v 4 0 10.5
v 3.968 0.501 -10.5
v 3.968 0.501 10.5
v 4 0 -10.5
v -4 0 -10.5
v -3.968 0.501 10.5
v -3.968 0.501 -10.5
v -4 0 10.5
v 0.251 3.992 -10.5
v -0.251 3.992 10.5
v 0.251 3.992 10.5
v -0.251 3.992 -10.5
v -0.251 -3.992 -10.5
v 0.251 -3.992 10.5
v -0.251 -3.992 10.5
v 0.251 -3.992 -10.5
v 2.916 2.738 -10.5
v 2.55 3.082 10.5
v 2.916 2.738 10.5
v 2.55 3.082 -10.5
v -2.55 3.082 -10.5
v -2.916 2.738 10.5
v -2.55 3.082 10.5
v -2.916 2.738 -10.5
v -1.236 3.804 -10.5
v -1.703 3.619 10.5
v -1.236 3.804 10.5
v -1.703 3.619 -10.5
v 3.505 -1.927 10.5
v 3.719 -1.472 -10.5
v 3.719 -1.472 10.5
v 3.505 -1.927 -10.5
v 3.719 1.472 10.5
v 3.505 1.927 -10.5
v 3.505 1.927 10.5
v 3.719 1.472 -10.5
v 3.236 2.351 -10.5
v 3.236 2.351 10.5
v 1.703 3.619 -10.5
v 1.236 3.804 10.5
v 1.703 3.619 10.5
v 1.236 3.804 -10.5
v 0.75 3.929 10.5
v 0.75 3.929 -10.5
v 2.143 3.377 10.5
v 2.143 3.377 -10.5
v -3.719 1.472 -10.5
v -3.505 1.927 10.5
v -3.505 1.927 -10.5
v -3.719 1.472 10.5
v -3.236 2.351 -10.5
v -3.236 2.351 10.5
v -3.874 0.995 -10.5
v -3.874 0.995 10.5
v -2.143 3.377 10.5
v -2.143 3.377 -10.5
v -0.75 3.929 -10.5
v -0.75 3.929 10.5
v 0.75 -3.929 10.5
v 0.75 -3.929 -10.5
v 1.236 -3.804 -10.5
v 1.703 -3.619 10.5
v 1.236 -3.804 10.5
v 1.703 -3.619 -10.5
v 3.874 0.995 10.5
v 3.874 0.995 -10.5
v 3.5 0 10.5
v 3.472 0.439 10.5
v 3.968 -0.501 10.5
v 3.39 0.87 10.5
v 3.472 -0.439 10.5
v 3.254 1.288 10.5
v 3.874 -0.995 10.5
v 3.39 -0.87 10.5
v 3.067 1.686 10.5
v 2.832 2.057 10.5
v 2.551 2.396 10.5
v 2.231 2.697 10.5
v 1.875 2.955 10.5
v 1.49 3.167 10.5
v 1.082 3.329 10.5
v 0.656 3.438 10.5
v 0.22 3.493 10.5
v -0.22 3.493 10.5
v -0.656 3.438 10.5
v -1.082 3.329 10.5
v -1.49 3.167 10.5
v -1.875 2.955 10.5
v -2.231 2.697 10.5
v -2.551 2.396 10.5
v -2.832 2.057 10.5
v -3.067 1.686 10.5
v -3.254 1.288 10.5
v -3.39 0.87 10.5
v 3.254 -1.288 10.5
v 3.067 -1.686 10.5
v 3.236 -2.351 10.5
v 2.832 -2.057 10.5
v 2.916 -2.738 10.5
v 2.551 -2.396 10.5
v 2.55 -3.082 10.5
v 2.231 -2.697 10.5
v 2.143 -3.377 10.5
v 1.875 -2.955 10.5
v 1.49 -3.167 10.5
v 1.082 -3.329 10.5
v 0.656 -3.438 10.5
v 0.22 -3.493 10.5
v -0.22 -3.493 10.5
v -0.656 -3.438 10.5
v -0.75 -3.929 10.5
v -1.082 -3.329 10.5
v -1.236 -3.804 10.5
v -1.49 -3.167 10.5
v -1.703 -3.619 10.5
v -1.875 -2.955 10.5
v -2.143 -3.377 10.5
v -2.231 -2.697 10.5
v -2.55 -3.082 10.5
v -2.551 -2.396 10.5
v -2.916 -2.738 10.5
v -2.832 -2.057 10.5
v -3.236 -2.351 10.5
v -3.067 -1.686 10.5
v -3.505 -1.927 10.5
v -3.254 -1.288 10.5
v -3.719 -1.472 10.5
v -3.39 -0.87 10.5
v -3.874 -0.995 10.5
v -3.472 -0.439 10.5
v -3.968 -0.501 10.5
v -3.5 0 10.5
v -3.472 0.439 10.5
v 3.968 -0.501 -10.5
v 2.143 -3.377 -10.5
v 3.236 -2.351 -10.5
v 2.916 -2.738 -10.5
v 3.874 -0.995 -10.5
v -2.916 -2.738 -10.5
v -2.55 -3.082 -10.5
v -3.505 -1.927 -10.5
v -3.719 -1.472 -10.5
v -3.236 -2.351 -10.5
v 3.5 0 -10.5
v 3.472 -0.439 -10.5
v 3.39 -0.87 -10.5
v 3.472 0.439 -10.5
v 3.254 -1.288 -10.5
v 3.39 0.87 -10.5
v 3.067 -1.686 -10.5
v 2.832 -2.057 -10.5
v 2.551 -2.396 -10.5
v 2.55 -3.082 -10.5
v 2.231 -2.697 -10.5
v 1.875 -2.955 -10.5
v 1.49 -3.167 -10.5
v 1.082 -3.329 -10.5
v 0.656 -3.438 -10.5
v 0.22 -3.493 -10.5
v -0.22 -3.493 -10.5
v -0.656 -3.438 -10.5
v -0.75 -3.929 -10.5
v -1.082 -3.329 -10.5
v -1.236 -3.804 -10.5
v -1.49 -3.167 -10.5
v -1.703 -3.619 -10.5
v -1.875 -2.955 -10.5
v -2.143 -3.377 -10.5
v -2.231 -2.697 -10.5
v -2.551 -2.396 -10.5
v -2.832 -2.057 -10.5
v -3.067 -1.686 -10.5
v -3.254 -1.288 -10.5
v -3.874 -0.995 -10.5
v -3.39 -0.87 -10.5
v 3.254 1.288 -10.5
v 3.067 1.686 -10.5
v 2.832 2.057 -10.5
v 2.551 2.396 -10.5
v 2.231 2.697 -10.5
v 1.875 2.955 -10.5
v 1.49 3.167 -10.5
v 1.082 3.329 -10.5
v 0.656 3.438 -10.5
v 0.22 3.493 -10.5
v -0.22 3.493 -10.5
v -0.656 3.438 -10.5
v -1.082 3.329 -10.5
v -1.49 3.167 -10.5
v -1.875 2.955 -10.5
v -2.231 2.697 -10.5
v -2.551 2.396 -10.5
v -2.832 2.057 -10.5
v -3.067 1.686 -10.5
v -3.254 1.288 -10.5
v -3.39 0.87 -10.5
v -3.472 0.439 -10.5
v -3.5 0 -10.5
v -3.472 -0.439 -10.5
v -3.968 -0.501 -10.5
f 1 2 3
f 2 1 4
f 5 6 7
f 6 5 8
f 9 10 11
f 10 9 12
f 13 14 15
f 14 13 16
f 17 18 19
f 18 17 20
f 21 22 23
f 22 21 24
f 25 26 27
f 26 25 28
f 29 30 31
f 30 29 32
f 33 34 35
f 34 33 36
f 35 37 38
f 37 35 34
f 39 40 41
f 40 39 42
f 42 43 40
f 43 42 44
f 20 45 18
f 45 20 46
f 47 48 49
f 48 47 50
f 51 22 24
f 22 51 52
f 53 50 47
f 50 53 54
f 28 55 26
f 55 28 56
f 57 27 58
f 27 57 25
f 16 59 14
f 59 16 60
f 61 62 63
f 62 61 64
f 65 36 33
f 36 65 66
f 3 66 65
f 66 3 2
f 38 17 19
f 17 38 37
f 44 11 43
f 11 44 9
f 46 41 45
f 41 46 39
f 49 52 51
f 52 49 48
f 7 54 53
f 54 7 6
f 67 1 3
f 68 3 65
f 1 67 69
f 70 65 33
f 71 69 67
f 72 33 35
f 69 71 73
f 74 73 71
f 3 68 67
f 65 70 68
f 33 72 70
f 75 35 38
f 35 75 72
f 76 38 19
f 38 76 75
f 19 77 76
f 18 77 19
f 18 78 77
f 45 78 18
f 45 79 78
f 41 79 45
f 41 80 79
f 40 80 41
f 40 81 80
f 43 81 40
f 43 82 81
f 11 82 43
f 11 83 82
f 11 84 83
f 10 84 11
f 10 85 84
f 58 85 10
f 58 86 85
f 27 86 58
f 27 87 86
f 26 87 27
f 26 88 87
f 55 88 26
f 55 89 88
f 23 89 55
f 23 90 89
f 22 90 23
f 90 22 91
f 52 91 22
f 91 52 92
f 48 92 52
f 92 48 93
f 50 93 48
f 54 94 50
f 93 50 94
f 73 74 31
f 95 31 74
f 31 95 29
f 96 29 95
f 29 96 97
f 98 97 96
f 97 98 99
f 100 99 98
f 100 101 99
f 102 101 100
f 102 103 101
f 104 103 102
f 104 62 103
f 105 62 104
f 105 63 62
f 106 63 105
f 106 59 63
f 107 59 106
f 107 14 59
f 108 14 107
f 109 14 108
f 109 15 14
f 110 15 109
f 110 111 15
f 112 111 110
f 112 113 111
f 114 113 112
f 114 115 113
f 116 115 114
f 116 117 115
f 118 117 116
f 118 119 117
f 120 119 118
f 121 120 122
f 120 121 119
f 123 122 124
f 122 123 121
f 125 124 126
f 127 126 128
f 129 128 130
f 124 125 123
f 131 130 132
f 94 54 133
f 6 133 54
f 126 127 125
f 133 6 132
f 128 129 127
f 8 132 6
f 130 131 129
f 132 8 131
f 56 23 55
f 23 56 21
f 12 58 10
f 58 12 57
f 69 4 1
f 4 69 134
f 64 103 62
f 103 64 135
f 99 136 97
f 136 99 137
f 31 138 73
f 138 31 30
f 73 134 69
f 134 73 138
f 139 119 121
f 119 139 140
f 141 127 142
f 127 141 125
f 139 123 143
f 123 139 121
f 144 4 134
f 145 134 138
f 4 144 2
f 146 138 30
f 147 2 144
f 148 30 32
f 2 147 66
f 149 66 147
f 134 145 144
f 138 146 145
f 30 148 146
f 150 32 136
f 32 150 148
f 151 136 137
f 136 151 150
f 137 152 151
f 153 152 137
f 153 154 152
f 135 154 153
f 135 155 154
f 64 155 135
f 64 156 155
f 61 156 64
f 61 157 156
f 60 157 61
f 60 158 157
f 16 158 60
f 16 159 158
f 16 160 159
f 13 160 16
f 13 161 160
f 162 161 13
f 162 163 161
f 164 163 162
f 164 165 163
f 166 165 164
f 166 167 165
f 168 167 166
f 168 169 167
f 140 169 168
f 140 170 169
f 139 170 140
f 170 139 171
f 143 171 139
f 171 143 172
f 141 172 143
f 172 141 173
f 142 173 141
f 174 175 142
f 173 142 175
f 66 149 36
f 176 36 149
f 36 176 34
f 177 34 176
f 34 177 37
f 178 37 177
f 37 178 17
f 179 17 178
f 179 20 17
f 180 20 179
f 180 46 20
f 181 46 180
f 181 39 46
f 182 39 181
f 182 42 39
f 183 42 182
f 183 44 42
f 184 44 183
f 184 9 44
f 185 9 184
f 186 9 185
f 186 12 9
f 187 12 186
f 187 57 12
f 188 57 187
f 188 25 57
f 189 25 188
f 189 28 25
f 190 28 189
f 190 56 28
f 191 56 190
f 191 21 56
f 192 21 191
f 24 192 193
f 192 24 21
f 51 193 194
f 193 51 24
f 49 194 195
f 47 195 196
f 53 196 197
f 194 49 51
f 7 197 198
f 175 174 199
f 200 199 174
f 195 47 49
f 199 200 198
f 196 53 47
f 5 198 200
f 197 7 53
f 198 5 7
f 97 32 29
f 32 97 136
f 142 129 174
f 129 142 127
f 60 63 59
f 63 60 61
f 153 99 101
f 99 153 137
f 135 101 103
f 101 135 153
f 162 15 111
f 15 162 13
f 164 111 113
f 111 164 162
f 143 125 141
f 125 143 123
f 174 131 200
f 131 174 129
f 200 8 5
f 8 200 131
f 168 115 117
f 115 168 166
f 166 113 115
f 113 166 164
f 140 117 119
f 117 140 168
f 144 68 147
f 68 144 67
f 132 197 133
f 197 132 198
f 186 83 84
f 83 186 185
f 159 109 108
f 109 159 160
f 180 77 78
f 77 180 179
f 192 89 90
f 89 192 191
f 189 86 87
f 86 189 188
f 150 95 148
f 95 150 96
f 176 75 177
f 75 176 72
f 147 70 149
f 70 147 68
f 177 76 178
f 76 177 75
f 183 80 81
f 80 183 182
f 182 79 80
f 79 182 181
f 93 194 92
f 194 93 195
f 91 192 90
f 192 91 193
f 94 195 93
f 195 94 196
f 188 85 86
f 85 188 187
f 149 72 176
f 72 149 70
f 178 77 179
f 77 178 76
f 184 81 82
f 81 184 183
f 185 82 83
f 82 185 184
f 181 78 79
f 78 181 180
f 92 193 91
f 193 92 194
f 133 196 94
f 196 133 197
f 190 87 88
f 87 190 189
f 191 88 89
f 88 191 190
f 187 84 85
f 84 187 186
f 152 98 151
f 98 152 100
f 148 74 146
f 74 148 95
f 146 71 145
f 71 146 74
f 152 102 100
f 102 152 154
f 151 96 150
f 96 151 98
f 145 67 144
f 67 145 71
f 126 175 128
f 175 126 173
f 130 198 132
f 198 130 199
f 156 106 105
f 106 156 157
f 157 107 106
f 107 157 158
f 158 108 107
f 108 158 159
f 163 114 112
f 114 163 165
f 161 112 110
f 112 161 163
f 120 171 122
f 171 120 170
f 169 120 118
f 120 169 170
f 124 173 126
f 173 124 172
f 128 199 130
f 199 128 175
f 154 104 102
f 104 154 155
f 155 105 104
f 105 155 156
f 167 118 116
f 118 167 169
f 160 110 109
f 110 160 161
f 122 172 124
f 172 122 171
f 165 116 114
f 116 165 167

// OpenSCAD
$fn = 50;


difference() {
	union() {
		translate(v = [0, 0, -10.5000000000]) {
			cylinder(h = 21, r = 4.0000000000);
		}
	}
	union() {
		translate(v = [0, 0, -100.0000000000]) {
			cylinder(h = 200, r = 3.5000000000);
		}
	}
}
